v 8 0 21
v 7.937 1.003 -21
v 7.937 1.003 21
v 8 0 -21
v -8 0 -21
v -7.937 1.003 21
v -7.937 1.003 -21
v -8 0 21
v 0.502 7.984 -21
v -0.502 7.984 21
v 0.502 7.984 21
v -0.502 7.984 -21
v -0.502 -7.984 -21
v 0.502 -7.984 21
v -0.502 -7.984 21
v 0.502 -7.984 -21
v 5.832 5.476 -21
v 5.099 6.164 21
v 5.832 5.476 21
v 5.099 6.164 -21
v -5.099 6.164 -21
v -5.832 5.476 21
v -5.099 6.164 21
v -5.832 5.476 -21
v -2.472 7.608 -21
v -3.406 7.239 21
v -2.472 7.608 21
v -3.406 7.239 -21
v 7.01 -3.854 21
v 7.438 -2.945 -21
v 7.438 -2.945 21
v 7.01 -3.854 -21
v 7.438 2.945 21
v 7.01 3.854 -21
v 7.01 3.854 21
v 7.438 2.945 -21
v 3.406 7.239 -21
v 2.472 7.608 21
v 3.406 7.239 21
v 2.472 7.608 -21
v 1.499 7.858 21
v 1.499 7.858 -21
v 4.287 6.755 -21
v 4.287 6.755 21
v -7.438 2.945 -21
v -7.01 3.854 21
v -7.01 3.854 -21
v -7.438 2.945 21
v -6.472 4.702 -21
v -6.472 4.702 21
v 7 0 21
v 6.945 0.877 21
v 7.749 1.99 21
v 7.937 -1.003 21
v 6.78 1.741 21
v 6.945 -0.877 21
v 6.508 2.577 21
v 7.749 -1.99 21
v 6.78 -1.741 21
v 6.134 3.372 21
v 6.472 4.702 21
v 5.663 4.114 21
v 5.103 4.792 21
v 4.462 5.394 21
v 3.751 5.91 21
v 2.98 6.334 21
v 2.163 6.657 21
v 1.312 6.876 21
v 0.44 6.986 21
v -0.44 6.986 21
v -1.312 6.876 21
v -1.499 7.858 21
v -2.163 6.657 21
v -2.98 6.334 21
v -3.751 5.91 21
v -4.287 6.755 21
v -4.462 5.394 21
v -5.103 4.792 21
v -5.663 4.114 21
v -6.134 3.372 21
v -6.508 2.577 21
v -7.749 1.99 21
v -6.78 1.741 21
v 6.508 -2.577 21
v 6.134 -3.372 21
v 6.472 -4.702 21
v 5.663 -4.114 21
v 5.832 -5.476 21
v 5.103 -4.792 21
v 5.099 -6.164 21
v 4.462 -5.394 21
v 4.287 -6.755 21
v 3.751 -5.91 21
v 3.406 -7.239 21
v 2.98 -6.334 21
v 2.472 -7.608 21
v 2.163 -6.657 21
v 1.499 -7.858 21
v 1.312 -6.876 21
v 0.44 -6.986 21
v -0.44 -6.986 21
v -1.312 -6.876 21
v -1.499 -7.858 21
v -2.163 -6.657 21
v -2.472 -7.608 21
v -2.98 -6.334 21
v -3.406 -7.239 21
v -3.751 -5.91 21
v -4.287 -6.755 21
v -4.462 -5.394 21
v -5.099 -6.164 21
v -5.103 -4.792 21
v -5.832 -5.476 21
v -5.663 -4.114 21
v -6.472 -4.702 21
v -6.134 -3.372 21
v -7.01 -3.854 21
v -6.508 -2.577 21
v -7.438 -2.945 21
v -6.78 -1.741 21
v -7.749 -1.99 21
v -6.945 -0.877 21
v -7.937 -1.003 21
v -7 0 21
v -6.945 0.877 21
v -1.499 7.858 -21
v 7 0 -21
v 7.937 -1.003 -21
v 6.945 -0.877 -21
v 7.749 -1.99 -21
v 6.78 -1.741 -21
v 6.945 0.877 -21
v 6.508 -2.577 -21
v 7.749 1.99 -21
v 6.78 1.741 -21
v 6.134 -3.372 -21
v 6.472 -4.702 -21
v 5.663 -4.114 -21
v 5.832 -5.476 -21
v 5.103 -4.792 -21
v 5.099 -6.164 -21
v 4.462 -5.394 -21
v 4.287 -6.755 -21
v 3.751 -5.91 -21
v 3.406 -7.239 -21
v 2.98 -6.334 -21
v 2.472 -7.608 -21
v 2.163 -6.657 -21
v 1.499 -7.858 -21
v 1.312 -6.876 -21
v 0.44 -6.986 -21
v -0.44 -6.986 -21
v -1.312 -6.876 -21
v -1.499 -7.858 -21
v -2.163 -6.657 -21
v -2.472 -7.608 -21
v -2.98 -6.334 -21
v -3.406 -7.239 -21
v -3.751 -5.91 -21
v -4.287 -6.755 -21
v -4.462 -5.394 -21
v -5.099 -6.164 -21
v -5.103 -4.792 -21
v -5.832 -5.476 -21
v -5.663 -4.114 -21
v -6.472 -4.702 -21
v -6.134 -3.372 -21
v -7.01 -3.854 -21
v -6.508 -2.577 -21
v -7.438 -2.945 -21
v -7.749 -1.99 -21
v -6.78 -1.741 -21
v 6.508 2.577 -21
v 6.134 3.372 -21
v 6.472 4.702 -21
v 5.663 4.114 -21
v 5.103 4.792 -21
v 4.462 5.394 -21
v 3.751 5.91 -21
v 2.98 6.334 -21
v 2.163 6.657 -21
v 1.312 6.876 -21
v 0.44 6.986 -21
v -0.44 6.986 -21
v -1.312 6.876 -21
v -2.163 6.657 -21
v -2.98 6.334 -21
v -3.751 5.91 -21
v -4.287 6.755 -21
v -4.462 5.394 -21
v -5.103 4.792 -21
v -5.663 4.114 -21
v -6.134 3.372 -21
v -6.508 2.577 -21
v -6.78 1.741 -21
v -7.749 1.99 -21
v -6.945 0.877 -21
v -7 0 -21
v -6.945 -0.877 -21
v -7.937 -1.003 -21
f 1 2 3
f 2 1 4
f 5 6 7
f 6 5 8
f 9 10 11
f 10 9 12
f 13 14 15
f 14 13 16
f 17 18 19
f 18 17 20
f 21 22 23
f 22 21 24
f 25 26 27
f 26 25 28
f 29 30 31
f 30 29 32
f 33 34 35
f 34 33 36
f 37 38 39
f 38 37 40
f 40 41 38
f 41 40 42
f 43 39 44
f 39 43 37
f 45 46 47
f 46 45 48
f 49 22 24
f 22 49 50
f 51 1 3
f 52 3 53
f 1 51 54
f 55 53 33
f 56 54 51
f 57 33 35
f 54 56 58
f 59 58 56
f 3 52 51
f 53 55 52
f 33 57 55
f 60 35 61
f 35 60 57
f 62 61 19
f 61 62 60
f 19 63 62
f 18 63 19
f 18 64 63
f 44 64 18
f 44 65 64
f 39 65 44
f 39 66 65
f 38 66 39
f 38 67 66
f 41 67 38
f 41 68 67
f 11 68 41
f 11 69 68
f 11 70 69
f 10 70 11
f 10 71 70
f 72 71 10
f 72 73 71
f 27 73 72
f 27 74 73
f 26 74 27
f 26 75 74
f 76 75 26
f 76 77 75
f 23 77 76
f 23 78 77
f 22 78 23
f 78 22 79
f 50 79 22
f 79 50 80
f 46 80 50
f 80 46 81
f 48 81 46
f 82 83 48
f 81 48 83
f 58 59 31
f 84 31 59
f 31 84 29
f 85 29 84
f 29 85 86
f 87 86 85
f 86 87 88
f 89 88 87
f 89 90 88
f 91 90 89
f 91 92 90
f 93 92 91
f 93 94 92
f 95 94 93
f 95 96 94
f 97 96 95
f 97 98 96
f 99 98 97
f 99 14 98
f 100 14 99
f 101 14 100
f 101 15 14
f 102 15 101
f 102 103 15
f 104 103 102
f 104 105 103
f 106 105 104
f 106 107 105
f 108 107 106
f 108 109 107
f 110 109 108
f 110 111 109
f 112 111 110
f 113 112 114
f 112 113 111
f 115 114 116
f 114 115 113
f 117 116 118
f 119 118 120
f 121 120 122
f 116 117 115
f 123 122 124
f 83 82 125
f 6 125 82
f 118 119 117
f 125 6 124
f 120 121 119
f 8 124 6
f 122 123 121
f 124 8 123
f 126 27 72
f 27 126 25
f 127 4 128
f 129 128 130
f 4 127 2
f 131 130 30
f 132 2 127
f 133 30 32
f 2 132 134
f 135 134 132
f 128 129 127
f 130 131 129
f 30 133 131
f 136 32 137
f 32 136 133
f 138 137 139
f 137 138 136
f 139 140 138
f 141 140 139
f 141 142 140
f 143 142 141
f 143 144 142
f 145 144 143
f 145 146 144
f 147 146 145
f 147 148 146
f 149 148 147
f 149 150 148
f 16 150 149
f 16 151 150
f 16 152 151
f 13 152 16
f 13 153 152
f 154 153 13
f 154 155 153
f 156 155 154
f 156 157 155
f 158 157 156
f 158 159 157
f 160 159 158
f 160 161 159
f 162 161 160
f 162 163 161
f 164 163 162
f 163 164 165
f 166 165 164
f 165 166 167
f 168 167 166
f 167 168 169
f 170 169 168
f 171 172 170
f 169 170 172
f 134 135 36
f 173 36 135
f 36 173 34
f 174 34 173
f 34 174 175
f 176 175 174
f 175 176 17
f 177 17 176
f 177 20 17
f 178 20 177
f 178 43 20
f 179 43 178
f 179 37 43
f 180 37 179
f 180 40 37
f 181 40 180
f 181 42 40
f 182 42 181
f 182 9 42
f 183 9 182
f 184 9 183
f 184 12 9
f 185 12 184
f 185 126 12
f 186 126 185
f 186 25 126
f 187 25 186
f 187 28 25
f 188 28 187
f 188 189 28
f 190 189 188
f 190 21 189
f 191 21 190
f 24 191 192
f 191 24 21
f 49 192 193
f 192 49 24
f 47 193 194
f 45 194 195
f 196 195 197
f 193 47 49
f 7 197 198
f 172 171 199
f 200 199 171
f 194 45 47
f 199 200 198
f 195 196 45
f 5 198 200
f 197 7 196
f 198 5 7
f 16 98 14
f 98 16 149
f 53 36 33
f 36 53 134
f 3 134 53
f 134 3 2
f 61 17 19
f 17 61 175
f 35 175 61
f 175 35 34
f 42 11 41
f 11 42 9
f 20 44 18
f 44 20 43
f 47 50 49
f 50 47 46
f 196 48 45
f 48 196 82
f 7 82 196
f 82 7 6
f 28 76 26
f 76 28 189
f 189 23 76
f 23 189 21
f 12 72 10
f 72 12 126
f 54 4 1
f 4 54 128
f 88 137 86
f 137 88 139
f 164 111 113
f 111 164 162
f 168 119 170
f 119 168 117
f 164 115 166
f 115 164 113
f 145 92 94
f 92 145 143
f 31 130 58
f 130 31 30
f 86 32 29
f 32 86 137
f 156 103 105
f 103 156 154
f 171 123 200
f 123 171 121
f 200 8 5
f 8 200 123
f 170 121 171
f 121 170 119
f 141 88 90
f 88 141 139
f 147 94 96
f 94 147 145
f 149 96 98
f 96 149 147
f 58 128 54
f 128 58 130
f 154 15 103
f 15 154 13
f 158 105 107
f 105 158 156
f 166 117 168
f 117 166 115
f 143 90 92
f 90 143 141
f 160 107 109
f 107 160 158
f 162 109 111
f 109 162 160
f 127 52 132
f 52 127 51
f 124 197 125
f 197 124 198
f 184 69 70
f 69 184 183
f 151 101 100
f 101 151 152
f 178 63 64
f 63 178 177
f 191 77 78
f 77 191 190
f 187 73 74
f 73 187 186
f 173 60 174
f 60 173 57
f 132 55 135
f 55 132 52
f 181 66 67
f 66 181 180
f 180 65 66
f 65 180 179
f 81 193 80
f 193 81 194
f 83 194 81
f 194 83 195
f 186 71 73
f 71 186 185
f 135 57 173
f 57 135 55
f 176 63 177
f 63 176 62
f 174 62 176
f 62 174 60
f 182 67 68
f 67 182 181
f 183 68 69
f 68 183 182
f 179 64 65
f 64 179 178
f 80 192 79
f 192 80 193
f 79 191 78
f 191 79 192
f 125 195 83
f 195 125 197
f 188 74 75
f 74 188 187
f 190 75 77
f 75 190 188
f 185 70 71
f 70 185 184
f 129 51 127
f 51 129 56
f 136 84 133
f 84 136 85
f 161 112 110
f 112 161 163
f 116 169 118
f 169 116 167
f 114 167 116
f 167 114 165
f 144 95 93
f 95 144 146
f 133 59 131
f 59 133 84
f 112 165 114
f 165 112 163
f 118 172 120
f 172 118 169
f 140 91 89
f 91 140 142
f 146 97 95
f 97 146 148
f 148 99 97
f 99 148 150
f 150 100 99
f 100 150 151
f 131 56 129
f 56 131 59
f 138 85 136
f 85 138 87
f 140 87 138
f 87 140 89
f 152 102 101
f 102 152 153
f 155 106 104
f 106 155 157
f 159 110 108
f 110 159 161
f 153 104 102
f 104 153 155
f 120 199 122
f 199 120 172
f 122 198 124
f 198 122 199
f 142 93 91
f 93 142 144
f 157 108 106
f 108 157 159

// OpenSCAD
$fn = 50;


difference() {
	union() {
		translate(v = [0, 0, -21.0000000000]) {
			cylinder(h = 42, r = 8.0000000000);
		}
	}
	union() {
		translate(v = [0, 0, -100.0000000000]) {
			cylinder(h = 200, r = 7);
		}
	}
}
